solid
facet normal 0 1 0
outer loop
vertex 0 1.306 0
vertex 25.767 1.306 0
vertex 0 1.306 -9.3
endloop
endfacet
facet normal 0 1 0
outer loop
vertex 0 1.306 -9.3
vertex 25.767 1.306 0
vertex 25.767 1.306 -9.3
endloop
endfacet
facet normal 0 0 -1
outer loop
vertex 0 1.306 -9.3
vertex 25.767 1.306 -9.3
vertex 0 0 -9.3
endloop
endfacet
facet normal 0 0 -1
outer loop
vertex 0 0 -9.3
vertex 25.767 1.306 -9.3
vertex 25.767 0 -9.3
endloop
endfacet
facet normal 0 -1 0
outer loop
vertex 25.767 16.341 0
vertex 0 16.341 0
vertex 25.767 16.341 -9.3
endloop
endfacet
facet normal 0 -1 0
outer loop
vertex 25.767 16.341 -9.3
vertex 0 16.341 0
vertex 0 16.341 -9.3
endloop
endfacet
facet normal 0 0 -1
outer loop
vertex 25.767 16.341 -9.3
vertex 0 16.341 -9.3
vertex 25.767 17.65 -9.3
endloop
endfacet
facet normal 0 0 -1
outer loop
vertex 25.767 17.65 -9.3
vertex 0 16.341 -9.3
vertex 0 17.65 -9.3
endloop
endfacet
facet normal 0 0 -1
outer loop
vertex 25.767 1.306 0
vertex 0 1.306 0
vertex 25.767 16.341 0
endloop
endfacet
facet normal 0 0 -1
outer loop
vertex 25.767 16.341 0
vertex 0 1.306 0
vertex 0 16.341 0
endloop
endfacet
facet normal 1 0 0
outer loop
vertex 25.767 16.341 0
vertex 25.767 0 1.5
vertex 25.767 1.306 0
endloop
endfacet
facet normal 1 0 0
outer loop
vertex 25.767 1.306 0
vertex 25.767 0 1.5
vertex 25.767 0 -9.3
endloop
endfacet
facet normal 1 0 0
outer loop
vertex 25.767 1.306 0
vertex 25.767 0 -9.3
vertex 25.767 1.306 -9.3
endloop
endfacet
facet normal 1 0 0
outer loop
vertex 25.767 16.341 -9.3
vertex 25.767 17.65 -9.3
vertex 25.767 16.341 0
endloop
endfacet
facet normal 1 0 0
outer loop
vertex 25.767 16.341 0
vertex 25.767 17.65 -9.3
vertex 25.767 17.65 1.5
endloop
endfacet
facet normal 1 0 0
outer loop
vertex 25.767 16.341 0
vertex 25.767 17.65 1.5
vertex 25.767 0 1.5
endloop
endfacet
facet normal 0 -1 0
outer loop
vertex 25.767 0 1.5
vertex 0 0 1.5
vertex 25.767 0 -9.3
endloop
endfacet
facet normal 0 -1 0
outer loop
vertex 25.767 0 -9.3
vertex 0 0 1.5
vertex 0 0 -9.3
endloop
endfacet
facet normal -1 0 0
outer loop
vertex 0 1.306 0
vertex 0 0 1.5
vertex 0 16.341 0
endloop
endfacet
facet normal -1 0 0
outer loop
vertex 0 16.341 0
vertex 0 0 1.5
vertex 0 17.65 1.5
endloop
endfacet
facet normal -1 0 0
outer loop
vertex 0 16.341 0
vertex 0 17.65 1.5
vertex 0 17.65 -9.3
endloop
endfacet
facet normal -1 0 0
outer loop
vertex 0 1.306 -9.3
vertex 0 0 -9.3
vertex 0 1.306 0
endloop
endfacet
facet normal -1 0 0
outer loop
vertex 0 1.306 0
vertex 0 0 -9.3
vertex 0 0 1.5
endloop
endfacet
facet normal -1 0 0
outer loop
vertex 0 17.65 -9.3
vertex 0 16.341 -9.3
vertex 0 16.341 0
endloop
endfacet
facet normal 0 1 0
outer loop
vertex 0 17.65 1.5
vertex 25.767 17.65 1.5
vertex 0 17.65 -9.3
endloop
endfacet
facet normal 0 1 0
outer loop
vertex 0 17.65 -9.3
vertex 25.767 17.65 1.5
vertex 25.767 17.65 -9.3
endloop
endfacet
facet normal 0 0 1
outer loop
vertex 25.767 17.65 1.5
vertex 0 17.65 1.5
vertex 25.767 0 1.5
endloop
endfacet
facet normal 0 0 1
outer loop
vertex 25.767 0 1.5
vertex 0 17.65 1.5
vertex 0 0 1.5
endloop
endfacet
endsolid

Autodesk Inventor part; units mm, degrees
ref_plane "YZ Plane" through (0, 0, 0) normal (1, 0, 0) x (0, 1, 0)
ref_plane "XZ Plane" through (0, 0, 0) normal (0, 1, 0) x (-1, 0, 0)
ref_plane "XY Plane" through (0, 0, 0) normal (0, 0, 1) x (1, 0, 0)
sketch "Sketch1" plane through (0, 0, 0) normal (0, 0, 1) x (1, 0, 0)
  line L0 (0, 17.6499) -> (25.7669, 17.6499)
  line L1 (25.7669, 17.6499) -> (25.7669, 0)
  line L2 (25.7669, 0) -> (0, 0)
  line L3 (0, 0) -> (0, 17.6499)
  line L4 (25.7669, 17.6499) -> (0, 17.6499)
  line L5 (0, 17.6499) -> (0, 16.3405)
  line L6 (0, 16.3405) -> (25.7669, 16.3405)
  line L7 (25.7669, 16.3405) -> (25.7669, 17.6499)
  line L8 (25.7669, 0) -> (0, 0)
  line L9 (0, 0) -> (0, 1.306)
  line L10 (0, 1.306) -> (25.7669, 1.306)
  line L11 (25.7669, 1.306) -> (25.7669, 0)
  dimension "d0" = 17.65
  dimension "d1" = 15.0345
  dimension "d2" = 1.3094
  dimension "d3" = 1.306
  dimension "d4" = 25.7669
extrude "Extrusion1" add sketch "Sketch1" along normal blind 1.5
extrude "Extrusion2" add sketch "Sketch1" against normal blind 9.3 contours L0 L1 L6 L3 | L10 L1 L2 L3
properties part number "Cover"
